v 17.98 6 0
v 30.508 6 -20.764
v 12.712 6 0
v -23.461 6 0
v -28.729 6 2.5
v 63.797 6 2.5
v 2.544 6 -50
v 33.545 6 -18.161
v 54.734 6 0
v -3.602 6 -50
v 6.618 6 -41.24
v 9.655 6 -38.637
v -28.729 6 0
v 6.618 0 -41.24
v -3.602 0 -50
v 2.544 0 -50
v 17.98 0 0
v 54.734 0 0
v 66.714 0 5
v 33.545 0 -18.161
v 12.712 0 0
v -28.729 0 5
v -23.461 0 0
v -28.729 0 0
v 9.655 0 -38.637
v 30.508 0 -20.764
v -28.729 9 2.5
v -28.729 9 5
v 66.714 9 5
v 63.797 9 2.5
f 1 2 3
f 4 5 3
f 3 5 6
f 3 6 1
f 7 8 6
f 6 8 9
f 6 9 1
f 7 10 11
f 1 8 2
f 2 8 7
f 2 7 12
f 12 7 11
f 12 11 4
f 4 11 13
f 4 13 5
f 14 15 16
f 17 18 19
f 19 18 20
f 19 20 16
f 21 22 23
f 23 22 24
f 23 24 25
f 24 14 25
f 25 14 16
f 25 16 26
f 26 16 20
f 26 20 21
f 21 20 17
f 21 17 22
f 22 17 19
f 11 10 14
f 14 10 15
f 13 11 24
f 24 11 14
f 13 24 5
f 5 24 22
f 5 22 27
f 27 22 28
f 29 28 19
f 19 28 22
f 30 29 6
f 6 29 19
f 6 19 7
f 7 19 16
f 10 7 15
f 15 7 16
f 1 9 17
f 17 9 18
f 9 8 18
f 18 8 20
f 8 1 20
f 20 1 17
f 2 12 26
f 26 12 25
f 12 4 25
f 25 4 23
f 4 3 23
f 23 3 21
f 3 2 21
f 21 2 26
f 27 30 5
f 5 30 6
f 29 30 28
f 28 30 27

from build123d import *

# Parameters (mm, degrees)
SALIENTE_EXTRUIR1_DEPTH = 6
SALIENTE_EXTRUIR2_DEPTH = 3


with BuildPart() as part:
    # Croquis1 → Saliente-Extruir1 (new body)
    with BuildSketch(Plane(origin=(0, 0, 0), x_dir=(1, 0, 0), z_dir=(0, 1, 0))):
        Polygon((-3.602218893, 50), (2.544306114, 50), (66.713907176, -5), (-28.729177989, -5), (-28.729177989, 0), (6.61797667, 41.240232966), align=None)
        Polygon((-23.460968903, 0), (12.711587976, 0), (30.508284771, 20.763762429), (9.655061899, 38.637136097), align=None, mode=Mode.SUBTRACT)
        Polygon((54.733782073, 0), (33.54537, 18.160665559), (17.979797062, 0), align=None, mode=Mode.SUBTRACT)
    extrude(amount=SALIENTE_EXTRUIR1_DEPTH)

    # Croquis2 → Saliente-Extruir2 (add)
    with BuildSketch(Plane(origin=(0, 6, 0), x_dir=(1, 0, 0), z_dir=(0, 1, 0))):
        Polygon((-28.729177989, -5), (66.713907176, -5), (63.797107127, -2.5), (-28.729177989, -2.5), align=None)
    extrude(amount=SALIENTE_EXTRUIR2_DEPTH)


solid = part.part
